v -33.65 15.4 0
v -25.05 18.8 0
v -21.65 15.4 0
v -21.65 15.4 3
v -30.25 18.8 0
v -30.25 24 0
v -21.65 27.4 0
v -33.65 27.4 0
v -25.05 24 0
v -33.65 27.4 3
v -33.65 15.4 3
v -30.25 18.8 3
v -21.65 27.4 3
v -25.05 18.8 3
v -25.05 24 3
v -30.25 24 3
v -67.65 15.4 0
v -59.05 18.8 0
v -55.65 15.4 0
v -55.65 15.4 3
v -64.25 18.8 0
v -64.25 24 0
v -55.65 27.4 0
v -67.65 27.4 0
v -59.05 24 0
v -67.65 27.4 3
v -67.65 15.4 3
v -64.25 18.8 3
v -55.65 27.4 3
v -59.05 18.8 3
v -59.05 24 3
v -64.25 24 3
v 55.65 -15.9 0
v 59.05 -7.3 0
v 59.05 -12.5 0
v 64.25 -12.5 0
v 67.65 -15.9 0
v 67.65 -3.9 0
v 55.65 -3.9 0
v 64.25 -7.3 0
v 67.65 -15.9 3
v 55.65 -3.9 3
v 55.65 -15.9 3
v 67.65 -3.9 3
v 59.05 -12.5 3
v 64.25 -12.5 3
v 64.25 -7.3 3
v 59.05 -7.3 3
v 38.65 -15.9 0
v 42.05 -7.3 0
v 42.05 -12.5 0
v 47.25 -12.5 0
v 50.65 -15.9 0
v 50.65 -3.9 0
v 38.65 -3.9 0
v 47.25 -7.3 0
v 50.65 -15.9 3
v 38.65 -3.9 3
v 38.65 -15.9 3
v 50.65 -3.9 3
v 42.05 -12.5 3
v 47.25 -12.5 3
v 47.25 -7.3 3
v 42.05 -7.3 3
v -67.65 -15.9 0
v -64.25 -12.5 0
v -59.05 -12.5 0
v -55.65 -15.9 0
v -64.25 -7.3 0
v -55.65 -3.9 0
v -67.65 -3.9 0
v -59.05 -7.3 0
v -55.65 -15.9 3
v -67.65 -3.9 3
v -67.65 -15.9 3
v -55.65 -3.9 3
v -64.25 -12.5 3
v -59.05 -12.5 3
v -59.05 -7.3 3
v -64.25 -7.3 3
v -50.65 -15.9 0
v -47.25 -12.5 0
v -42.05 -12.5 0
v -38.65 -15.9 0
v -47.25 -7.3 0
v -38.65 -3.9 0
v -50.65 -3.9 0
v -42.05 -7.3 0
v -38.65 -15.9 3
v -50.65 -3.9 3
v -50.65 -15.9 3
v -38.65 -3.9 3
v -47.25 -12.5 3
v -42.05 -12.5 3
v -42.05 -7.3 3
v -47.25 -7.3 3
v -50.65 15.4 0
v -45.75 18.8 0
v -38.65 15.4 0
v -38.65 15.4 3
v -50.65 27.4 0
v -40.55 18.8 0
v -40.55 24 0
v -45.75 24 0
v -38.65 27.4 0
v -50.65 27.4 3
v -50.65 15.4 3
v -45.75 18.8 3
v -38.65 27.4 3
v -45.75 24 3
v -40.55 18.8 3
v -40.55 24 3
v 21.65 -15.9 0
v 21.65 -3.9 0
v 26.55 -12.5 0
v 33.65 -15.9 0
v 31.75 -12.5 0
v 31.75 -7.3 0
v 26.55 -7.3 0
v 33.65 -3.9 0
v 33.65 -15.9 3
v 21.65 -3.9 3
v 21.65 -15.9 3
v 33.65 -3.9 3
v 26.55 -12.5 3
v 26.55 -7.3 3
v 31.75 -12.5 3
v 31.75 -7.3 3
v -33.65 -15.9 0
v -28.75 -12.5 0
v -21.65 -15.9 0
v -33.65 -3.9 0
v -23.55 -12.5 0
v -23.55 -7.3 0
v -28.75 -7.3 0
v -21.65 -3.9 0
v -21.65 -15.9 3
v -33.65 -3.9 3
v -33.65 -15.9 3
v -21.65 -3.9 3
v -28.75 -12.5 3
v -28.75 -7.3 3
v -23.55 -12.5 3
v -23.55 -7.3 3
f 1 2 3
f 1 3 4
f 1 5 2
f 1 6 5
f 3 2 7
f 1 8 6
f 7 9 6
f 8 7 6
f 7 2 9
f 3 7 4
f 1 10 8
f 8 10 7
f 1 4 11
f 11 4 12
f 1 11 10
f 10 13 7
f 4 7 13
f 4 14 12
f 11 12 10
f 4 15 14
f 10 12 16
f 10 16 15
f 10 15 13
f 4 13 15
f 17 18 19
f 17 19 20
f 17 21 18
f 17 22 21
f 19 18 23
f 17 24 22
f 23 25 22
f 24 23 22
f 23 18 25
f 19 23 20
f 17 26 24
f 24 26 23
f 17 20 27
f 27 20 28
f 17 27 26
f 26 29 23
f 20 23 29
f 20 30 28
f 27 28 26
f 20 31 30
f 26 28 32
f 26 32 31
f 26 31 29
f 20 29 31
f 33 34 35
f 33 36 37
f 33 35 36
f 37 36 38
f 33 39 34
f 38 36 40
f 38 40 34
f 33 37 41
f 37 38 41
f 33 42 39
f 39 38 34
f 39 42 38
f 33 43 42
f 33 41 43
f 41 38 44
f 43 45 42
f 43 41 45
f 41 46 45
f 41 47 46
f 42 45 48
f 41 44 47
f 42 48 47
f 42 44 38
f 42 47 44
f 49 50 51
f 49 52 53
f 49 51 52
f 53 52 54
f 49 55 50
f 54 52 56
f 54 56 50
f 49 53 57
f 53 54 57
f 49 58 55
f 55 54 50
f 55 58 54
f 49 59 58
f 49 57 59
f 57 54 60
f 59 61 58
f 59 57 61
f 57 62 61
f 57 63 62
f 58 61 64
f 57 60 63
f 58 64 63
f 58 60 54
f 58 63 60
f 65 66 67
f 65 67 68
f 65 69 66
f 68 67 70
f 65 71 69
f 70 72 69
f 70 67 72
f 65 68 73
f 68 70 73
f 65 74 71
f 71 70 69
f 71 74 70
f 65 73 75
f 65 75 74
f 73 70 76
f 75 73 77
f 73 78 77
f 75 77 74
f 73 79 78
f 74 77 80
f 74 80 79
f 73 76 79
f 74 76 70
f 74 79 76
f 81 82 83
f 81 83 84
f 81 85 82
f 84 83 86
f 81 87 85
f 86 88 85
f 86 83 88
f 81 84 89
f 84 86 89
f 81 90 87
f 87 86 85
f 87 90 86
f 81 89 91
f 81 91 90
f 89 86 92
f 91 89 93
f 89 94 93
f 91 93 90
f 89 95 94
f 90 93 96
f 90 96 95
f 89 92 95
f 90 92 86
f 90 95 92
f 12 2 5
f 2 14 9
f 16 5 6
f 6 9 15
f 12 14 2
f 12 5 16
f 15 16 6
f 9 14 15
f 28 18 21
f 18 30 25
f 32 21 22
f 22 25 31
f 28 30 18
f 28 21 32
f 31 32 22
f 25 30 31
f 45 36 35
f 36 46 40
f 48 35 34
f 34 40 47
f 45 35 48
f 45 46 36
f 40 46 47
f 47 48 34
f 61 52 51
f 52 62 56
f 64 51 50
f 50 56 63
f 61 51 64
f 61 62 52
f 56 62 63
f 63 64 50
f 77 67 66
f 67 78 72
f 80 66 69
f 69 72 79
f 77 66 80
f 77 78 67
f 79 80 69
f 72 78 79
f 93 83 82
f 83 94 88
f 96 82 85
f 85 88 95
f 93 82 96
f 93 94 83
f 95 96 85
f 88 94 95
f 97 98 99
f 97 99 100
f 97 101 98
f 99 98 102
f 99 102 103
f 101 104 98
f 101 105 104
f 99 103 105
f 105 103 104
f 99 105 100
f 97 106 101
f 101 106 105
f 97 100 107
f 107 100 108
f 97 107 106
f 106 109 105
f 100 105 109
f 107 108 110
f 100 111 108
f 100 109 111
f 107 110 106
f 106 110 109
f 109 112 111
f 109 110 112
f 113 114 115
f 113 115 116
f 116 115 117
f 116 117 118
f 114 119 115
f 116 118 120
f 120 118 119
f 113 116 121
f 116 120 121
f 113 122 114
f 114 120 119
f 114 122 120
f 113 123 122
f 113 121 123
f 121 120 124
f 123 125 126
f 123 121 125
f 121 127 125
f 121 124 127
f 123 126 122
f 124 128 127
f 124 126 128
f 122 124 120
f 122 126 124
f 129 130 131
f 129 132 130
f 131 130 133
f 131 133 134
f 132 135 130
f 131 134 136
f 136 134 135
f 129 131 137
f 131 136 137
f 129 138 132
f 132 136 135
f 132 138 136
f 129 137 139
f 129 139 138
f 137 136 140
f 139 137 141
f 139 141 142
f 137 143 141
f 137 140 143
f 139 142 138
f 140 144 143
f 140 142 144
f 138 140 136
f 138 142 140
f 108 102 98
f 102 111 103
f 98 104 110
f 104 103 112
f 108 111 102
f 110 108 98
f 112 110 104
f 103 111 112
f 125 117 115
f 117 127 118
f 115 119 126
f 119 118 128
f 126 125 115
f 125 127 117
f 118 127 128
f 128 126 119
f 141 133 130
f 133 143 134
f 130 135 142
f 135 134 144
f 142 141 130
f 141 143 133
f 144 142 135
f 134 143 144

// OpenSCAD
$fn = 50;

difference() {
	union() {
		translate(v = [-61.6500000005, -9.899999999999999, 0]) {
			rotate(a = [0, 0, 0]) {
				difference() {
					union() {
						translate(v = [-6.0, -6.0, 0]) {
							cube(size = [12.0, 12.0, 3.0]);
						}
					}
					union() {
						translate(v = [-2.6, -2.6, -0.1]) {
							cube(size = [5.2, 5.2, 3.2]);
						}
					}
				}
			}
		}
		translate(v = [-44.6500000005, -9.899999999999999, 0]) {
			rotate(a = [0, 0, 0]) {
				difference() {
					union() {
						translate(v = [-6.0, -6.0, 0]) {
							cube(size = [12.0, 12.0, 3.0]);
						}
					}
					union() {
						translate(v = [-2.6, -2.6, -0.1]) {
							cube(size = [5.2, 5.2, 3.2]);
						}
					}
				}
			}
		}
		translate(v = [-27.6500000005, -9.899999999999999, 0]) {
			rotate(a = [0, 0, 0]) {
				difference() {
					union() {
						translate(v = [-6.0, -6.0, 0]) {
							cube(size = [12.0, 12.0, 3.0]);
						}
					}
					union() {
						translate(v = [-1.1, -2.6, -0.1]) {
							cube(size = [5.2, 5.2, 3.2]);
						}
					}
				}
			}
		}
		translate(v = [27.649999999499997, -9.899999999999999, 0]) {
			rotate(a = [0, 0, 0]) {
				difference() {
					union() {
						translate(v = [-6.0, -6.0, 0]) {
							cube(size = [12.0, 12.0, 3.0]);
						}
					}
					union() {
						translate(v = [-1.1, -2.6, -0.1]) {
							cube(size = [5.2, 5.2, 3.2]);
						}
					}
				}
			}
		}
		translate(v = [44.6499999995, -9.899999999999999, 0]) {
			rotate(a = [0, 0, 0]) {
				difference() {
					union() {
						translate(v = [-6.0, -6.0, 0]) {
							cube(size = [12.0, 12.0, 3.0]);
						}
					}
					union() {
						translate(v = [-2.6, -2.6, -0.1]) {
							cube(size = [5.2, 5.2, 3.2]);
						}
					}
				}
			}
		}
		translate(v = [61.6499999995, -9.899999999999999, 0]) {
			rotate(a = [0, 0, 0]) {
				difference() {
					union() {
						translate(v = [-6.0, -6.0, 0]) {
							cube(size = [12.0, 12.0, 3.0]);
						}
					}
					union() {
						translate(v = [-2.6, -2.6, -0.1]) {
							cube(size = [5.2, 5.2, 3.2]);
						}
					}
				}
			}
		}
		translate(v = [-61.6500000005, 21.400000000000002, 0]) {
			rotate(a = [0, 0, 0]) {
				difference() {
					union() {
						translate(v = [-6.0, -6.0, 0]) {
							cube(size = [12.0, 12.0, 3.0]);
						}
					}
					union() {
						translate(v = [-2.6, -2.6, -0.1]) {
							cube(size = [5.2, 5.2, 3.2]);
						}
					}
				}
			}
		}
		translate(v = [-44.6500000005, 21.400000000000002, 0]) {
			rotate(a = [0, 0, 0]) {
				difference() {
					union() {
						translate(v = [-6.0, -6.0, 0]) {
							cube(size = [12.0, 12.0, 3.0]);
						}
					}
					union() {
						translate(v = [-1.1, -2.6, -0.1]) {
							cube(size = [5.2, 5.2, 3.2]);
						}
					}
				}
			}
		}
		translate(v = [-27.6500000005, 21.400000000000002, 0]) {
			rotate(a = [0, 0, 0]) {
				difference() {
					union() {
						translate(v = [-6.0, -6.0, 0]) {
							cube(size = [12.0, 12.0, 3.0]);
						}
					}
					union() {
						translate(v = [-2.6, -2.6, -0.1]) {
							cube(size = [5.2, 5.2, 3.2]);
						}
					}
				}
			}
		}
	}
	union();
}
